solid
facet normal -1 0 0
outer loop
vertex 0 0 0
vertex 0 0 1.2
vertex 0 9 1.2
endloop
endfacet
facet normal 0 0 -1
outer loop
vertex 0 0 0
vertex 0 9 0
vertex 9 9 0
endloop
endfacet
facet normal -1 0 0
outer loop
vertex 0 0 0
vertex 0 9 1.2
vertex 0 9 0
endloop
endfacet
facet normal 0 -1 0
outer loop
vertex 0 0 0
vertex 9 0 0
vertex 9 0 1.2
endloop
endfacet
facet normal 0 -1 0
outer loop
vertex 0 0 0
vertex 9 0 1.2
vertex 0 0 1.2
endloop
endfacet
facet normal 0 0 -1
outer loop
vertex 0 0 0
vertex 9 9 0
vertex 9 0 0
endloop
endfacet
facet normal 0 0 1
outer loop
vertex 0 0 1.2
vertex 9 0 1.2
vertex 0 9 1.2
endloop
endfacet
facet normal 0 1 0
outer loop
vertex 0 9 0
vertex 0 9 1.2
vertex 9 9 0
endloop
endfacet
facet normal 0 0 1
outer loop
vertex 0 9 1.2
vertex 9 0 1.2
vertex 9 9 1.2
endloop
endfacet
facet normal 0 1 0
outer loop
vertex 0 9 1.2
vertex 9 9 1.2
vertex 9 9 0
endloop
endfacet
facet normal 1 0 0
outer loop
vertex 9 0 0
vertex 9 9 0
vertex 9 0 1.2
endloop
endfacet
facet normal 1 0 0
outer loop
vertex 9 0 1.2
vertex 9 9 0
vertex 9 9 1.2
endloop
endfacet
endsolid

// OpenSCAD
/* Warning, this is a very basic generator with a lot of approximation 
input data : [TFBGA, 8RW, 9x9x1.2mm, 340, , A, C04-00670A]
generated by com.zoubworld.electronics.cad.model3d.Basic
Date : Sun Feb 15 10:50:49 CET 2026
*/

//body
color("black")
translate([0,0,0])
cube([9.0,9.0,1.2], center=false);
